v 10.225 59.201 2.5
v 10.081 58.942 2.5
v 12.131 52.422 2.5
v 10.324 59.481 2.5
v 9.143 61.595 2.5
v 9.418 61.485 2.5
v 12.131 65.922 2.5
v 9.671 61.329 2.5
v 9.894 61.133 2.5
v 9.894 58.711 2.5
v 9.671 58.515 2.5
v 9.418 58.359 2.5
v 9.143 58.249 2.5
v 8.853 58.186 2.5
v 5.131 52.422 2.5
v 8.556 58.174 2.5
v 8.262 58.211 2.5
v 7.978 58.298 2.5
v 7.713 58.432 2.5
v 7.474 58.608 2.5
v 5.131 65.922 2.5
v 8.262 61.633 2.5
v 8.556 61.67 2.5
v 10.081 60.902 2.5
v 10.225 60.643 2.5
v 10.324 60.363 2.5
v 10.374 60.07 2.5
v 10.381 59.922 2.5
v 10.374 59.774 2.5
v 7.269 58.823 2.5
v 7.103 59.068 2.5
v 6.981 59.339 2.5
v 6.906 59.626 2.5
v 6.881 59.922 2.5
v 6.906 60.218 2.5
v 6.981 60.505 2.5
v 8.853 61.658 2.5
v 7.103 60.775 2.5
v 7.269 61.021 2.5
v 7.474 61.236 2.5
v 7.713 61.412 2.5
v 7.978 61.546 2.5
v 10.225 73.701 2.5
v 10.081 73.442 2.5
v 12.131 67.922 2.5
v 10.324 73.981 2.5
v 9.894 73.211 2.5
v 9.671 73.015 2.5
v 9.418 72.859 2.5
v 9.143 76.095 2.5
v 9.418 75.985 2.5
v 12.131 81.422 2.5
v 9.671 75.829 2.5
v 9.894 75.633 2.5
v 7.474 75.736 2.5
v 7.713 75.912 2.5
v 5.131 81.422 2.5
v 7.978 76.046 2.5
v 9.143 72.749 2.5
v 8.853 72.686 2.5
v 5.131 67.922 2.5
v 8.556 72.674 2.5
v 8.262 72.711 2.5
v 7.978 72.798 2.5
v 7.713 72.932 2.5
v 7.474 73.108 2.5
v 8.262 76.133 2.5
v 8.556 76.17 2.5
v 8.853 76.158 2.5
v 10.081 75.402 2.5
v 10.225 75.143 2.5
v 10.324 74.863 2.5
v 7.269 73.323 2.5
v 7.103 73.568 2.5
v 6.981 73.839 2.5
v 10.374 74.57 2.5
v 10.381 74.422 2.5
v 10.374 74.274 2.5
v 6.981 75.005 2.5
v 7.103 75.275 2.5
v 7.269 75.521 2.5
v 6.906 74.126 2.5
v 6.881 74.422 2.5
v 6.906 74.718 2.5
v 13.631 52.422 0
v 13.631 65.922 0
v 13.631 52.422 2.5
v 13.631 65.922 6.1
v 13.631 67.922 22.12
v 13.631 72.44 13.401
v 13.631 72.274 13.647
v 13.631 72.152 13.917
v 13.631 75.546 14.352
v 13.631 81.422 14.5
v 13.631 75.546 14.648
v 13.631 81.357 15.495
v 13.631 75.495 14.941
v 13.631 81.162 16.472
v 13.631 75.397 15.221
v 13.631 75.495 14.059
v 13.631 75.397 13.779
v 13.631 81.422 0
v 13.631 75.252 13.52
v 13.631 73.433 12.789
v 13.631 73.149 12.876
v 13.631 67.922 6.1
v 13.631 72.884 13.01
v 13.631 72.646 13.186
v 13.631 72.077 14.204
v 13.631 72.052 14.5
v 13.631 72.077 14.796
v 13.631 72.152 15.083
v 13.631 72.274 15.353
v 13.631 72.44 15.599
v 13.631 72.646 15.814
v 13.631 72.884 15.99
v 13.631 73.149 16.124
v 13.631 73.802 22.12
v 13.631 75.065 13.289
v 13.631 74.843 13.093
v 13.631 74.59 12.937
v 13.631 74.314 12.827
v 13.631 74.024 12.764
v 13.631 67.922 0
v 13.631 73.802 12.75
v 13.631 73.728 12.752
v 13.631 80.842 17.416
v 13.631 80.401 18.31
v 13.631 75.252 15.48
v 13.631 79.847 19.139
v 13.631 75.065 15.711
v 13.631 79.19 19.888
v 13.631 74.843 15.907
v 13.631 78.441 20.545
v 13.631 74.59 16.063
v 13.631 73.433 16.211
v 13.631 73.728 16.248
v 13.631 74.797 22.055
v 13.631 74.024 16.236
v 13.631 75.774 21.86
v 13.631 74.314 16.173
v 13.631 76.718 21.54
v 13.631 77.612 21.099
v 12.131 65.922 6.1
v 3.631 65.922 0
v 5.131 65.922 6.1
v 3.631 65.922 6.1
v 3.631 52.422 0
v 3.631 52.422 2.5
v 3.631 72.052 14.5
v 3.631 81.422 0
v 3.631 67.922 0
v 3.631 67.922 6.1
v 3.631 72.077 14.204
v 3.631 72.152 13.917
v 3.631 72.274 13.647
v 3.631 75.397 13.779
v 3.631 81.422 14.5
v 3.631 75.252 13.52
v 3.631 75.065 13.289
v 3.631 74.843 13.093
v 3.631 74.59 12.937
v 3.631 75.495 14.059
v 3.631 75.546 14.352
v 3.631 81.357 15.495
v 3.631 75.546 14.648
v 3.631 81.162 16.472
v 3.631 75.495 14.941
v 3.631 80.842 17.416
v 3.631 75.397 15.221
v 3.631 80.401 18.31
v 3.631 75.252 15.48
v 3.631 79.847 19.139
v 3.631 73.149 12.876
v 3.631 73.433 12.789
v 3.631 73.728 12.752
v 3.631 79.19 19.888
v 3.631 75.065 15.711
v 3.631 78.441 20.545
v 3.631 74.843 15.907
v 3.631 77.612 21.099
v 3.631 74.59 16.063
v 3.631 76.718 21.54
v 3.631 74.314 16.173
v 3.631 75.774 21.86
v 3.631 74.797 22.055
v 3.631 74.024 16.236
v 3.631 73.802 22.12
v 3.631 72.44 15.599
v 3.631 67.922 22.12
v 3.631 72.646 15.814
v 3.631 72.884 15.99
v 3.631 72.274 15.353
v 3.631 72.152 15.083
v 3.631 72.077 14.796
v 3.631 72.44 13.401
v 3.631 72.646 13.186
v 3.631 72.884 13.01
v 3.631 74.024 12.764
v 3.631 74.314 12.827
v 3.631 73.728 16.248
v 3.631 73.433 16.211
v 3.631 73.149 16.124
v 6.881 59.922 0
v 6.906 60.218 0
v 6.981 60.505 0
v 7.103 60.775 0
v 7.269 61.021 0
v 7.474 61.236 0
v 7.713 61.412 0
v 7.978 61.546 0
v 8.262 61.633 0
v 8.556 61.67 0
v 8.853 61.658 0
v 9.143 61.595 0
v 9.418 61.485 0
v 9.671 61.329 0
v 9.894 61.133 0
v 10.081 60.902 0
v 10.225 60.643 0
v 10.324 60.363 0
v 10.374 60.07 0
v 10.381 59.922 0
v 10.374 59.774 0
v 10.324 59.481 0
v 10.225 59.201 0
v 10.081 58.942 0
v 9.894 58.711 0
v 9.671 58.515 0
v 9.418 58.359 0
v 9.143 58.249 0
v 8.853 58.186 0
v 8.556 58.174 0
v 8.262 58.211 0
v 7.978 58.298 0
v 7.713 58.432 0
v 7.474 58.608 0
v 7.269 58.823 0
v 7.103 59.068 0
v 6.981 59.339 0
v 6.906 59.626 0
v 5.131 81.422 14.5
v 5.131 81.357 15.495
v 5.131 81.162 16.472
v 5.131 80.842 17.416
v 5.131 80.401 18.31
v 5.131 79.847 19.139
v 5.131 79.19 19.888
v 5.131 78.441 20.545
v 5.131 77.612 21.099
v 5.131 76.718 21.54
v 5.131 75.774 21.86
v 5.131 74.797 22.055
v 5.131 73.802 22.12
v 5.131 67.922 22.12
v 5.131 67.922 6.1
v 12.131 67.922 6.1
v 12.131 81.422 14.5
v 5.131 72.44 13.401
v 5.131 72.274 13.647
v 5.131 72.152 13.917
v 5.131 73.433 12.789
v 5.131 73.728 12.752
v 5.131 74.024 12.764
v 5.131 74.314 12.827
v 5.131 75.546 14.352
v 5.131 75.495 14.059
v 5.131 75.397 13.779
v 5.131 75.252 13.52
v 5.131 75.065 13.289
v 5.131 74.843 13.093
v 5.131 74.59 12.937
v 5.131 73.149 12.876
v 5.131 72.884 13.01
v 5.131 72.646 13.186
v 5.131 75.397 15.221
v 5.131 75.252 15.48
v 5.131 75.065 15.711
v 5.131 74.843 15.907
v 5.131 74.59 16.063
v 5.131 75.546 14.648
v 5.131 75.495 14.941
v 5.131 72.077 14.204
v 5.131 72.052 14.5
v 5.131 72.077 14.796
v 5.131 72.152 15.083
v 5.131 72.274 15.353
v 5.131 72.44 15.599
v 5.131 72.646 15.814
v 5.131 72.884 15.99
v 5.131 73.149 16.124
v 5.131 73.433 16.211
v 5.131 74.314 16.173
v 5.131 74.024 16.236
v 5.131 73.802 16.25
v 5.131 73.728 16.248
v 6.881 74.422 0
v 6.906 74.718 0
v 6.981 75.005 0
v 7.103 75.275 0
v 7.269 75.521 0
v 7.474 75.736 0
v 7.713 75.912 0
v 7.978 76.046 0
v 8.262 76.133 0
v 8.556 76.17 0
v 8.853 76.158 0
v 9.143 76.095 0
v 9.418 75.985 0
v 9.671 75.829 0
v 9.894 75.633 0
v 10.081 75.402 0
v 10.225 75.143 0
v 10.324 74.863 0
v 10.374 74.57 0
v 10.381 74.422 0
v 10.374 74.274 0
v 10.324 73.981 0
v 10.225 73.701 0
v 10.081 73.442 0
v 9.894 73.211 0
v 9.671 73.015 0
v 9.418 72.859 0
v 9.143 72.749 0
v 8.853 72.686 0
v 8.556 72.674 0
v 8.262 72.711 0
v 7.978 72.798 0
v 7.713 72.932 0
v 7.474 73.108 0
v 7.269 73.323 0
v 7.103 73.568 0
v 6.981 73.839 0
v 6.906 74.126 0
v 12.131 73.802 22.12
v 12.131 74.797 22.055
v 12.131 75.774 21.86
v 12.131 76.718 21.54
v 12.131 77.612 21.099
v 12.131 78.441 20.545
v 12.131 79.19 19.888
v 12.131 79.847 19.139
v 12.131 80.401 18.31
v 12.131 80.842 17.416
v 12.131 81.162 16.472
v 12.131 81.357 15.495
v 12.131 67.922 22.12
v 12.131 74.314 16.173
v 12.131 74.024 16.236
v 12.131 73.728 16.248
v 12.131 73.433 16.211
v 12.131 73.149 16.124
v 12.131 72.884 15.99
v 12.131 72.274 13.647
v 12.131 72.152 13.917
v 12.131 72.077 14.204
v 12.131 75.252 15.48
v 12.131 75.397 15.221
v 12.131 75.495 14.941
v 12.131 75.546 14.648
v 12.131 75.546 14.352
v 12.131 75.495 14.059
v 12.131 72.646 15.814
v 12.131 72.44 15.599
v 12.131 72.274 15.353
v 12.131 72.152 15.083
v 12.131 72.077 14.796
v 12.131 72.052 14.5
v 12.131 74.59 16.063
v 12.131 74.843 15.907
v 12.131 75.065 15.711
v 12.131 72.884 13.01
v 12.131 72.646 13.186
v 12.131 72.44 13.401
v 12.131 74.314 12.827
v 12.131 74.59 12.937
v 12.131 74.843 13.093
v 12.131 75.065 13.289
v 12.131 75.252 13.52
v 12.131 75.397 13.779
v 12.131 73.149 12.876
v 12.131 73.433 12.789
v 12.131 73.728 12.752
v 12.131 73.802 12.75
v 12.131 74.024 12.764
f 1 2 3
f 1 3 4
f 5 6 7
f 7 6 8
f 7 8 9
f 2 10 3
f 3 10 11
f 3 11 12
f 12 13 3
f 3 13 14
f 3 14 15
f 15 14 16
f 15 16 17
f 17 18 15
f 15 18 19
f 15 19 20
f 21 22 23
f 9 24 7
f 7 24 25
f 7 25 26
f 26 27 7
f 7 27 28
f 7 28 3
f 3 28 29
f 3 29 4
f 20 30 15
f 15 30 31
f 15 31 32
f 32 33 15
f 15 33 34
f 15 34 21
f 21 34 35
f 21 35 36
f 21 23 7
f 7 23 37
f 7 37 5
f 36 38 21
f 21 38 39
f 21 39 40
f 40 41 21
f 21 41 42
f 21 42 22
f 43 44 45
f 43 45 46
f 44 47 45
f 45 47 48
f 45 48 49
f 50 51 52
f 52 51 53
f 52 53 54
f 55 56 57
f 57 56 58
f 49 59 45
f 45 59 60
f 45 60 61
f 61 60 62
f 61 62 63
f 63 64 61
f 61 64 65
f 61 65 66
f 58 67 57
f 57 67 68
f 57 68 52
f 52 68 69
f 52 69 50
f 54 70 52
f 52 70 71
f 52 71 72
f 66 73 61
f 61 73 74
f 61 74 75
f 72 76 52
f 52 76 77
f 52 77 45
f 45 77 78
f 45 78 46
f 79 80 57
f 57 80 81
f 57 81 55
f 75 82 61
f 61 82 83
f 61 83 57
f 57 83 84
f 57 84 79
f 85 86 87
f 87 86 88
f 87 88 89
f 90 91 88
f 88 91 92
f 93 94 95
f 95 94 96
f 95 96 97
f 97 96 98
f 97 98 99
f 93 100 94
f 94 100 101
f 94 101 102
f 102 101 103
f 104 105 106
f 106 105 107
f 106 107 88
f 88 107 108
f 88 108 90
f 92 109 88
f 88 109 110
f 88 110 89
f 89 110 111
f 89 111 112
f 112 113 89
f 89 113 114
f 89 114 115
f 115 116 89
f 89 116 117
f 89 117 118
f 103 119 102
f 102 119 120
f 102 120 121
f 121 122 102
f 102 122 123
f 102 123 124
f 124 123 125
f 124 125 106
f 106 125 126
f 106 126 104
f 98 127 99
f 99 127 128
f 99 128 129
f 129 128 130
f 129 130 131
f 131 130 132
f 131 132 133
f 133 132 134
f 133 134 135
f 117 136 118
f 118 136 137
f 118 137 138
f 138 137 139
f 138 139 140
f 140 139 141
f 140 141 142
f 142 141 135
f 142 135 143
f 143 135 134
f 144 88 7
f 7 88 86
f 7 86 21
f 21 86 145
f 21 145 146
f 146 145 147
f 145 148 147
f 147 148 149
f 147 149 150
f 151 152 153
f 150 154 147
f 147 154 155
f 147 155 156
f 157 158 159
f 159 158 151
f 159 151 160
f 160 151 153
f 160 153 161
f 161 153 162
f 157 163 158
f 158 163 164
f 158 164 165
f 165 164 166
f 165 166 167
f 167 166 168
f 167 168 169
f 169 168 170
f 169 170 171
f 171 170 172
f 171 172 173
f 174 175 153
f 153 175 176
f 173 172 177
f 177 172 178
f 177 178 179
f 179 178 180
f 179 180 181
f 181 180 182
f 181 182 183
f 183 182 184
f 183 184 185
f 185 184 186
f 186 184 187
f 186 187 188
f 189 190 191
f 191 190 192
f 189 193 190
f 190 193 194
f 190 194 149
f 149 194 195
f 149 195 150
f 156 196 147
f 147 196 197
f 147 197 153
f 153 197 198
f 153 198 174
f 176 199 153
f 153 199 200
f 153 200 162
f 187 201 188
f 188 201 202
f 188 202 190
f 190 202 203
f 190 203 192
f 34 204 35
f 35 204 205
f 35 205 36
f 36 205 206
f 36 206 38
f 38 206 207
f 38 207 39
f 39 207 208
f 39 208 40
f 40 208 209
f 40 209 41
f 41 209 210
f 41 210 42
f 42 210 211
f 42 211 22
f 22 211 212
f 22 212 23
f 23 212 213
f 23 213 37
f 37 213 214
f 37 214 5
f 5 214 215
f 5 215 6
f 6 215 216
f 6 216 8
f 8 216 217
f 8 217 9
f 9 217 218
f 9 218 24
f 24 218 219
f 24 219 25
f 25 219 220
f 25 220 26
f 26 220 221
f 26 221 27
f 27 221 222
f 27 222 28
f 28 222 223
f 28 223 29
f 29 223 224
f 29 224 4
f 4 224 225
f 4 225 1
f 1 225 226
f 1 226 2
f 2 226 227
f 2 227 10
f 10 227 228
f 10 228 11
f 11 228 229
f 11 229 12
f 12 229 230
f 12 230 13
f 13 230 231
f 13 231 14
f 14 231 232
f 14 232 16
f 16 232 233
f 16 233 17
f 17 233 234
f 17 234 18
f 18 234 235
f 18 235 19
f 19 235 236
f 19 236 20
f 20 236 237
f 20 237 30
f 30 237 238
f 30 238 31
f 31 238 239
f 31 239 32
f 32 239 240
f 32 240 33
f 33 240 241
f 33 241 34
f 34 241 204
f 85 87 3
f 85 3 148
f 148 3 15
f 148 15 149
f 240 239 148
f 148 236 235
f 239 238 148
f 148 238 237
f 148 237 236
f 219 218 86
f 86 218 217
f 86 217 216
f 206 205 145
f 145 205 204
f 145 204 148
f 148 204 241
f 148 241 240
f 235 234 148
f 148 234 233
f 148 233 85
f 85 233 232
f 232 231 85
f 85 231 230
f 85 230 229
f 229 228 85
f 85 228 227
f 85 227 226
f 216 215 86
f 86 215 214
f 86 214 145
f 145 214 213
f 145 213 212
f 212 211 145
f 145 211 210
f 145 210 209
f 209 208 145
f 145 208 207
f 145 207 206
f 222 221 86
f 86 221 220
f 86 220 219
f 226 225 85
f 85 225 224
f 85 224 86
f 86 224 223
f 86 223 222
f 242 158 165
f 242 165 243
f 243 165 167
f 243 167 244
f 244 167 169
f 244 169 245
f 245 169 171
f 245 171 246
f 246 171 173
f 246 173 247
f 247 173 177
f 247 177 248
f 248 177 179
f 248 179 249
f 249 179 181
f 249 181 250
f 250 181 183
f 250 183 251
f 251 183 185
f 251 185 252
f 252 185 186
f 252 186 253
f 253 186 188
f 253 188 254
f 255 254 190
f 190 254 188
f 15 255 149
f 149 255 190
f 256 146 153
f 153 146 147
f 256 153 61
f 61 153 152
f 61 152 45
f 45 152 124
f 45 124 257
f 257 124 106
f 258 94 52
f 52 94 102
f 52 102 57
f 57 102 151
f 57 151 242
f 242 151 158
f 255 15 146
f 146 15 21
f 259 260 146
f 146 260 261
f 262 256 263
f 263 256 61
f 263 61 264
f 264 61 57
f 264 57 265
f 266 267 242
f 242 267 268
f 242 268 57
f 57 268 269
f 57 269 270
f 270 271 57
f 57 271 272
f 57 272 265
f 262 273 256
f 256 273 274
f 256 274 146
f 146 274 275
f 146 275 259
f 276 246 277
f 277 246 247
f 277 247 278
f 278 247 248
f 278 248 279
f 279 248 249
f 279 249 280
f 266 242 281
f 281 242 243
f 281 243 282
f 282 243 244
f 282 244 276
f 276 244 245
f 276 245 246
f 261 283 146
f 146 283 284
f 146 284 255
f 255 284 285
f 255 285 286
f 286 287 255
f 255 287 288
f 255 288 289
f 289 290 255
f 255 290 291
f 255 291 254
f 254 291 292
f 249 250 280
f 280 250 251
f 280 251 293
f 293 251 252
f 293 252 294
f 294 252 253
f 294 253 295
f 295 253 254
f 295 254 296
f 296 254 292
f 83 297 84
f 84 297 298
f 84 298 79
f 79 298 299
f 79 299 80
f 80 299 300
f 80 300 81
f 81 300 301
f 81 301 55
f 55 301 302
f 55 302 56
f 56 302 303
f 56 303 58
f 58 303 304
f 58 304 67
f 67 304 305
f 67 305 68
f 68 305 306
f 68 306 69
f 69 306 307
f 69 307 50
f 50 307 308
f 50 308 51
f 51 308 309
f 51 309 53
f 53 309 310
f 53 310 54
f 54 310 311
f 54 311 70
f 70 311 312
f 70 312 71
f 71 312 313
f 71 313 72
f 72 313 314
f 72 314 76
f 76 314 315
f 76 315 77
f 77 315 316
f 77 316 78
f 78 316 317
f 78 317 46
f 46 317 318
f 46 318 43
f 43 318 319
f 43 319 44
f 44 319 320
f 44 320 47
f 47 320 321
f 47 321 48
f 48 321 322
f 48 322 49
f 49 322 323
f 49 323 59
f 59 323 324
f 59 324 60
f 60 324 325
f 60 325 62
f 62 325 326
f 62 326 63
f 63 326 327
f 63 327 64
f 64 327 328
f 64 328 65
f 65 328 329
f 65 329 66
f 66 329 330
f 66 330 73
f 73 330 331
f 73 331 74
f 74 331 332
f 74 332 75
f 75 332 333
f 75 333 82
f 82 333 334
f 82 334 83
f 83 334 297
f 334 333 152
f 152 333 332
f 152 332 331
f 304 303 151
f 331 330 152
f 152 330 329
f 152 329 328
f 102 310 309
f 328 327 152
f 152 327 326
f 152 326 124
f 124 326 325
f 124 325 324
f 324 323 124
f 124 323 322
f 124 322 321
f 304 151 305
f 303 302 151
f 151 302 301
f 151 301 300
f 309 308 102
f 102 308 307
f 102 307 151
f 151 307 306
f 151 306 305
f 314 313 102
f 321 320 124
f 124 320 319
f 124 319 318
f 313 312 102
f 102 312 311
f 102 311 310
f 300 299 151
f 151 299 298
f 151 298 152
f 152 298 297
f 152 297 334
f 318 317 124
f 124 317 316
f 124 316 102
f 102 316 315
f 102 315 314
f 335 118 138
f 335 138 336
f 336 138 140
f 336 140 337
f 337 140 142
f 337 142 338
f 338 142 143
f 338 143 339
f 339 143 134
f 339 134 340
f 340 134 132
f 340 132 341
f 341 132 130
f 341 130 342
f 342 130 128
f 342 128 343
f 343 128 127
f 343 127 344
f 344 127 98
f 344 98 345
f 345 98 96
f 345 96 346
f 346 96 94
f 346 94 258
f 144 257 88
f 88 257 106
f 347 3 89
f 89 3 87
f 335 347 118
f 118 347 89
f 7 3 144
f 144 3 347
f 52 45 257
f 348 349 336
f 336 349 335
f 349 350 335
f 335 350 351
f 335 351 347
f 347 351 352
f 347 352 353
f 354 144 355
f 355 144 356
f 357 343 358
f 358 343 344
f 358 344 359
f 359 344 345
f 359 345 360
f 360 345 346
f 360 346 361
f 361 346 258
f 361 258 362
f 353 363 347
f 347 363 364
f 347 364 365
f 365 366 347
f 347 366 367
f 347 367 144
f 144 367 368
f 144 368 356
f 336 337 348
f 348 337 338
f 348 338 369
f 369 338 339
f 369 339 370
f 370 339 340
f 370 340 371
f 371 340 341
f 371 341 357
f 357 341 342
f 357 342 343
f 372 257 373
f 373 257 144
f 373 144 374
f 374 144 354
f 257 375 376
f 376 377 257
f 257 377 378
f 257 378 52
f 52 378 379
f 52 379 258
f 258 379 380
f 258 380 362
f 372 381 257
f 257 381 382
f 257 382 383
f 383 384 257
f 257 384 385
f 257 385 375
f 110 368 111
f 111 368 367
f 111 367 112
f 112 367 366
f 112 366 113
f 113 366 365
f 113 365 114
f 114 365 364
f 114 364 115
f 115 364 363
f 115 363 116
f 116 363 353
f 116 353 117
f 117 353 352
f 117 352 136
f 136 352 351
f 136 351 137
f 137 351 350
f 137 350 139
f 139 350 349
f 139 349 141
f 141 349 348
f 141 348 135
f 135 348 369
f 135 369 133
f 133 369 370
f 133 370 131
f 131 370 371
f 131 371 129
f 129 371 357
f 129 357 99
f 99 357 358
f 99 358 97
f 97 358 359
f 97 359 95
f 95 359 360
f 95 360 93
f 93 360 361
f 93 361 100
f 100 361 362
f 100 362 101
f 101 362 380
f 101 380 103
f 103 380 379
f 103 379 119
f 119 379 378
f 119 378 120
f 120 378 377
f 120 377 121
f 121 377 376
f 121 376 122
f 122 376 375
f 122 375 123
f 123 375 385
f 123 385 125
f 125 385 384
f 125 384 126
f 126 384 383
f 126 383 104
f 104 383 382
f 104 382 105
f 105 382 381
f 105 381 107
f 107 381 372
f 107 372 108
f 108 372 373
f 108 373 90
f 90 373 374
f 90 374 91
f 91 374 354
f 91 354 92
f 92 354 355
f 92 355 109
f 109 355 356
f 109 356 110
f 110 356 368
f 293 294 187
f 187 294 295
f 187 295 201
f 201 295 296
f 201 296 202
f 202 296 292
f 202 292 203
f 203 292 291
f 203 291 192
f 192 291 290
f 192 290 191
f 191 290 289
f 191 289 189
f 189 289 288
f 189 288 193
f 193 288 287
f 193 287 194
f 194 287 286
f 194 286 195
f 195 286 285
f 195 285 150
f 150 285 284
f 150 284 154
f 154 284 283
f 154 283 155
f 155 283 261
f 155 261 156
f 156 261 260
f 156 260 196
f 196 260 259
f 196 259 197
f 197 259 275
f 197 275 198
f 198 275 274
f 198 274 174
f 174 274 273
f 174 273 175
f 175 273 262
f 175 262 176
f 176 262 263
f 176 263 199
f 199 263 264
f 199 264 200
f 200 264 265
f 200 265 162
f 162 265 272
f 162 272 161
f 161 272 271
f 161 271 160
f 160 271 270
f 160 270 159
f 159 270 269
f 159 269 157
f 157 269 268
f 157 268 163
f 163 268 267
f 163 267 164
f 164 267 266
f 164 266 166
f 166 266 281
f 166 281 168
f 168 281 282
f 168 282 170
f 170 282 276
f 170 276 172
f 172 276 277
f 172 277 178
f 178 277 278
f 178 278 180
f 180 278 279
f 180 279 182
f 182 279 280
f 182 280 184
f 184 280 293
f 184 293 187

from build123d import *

# Parameters (mm, degrees)
SKETCH1_W             = 10
SKETCH1_H             = 13.5
SKETCH1_R             = 1.75
BOSS_EXTRUDE1_DEPTH   = 2.5
BOSS_EXTRUDE1_2_DEPTH = 2.5
BOSS_EXTRUDE2_DEPTH   = 1.5
SKETCH5_R             = 1.7499965
CUT_EXTRUDE1_DEPTH    = 12.446


with BuildPart() as part:
    # Sketch1 → Boss-Extrude1 (new body)
    with BuildSketch(Plane.XY):
        with Locations((8.63063628, 74.671921363)):
            Rectangle(SKETCH1_W, SKETCH1_H)
        with Locations((8.63063628, 74.421921363)):
            Circle(SKETCH1_R, mode=Mode.SUBTRACT)
    extrude(amount=BOSS_EXTRUDE1_DEPTH)



with BuildPart() as body_2:
    # Sketch1 → Boss-Extrude1 2 (new body)
    with BuildSketch(Plane.XY):
        with Locations((8.63063628, 59.171921363)):
            Rectangle(SKETCH1_W, SKETCH1_H)
        with Locations((8.63063628, 59.921921363)):
            Circle(SKETCH1_R, mode=Mode.SUBTRACT)
    extrude(amount=BOSS_EXTRUDE1_2_DEPTH)


with BuildPart() as part_1:
    add(part.part)

    add(body_2.part)  # Boss-Extrude2 merges body 2
    # Sketch2 → Boss-Extrude2 (add)
    with BuildSketch(Plane.ZY.offset(-3.63063628)):
        with BuildLine():
            Line((6.100159914, 65.921921363), (2.5, 65.921921363))
            Line((2.5, 65.921921363), (2.5, 52.421921363))
            Line((2.5, 52.421921363), (22.12, 67.921921363))
            Line((22.12, 67.921921363), (22.12, 73.801921363))
            ThreePointArc((22.12, 73.801921363), (19.888153673, 79.190075036), (14.5, 81.421921363))
            Line((14.5, 81.421921363), (2.5, 81.421921363))
            Line((2.5, 81.421921363), (2.5, 67.921921363))
            Line((2.5, 67.921921363), (6.100159914, 67.921921363))
            Line((6.100159914, 67.921921363), (6.100159914, 65.921921363))
        make_face()
    boss_extrude2 = extrude(amount=-BOSS_EXTRUDE2_DEPTH)

    # Mirror1: Boss-Extrude2 across plane
    add(boss_extrude2.mirror(Plane.ZY.offset(-8.63063628)))

    # Sketch5 → Cut-Extrude1 (cut)
    with BuildSketch(Plane.ZY.offset(-3.63063628)):
        with Locations(Location((14.5, 73.801921363, 0), (0, 0, 270))):
            Circle(SKETCH5_R)
    extrude(amount=-CUT_EXTRUDE1_DEPTH, mode=Mode.SUBTRACT)


solid = part_1.part
